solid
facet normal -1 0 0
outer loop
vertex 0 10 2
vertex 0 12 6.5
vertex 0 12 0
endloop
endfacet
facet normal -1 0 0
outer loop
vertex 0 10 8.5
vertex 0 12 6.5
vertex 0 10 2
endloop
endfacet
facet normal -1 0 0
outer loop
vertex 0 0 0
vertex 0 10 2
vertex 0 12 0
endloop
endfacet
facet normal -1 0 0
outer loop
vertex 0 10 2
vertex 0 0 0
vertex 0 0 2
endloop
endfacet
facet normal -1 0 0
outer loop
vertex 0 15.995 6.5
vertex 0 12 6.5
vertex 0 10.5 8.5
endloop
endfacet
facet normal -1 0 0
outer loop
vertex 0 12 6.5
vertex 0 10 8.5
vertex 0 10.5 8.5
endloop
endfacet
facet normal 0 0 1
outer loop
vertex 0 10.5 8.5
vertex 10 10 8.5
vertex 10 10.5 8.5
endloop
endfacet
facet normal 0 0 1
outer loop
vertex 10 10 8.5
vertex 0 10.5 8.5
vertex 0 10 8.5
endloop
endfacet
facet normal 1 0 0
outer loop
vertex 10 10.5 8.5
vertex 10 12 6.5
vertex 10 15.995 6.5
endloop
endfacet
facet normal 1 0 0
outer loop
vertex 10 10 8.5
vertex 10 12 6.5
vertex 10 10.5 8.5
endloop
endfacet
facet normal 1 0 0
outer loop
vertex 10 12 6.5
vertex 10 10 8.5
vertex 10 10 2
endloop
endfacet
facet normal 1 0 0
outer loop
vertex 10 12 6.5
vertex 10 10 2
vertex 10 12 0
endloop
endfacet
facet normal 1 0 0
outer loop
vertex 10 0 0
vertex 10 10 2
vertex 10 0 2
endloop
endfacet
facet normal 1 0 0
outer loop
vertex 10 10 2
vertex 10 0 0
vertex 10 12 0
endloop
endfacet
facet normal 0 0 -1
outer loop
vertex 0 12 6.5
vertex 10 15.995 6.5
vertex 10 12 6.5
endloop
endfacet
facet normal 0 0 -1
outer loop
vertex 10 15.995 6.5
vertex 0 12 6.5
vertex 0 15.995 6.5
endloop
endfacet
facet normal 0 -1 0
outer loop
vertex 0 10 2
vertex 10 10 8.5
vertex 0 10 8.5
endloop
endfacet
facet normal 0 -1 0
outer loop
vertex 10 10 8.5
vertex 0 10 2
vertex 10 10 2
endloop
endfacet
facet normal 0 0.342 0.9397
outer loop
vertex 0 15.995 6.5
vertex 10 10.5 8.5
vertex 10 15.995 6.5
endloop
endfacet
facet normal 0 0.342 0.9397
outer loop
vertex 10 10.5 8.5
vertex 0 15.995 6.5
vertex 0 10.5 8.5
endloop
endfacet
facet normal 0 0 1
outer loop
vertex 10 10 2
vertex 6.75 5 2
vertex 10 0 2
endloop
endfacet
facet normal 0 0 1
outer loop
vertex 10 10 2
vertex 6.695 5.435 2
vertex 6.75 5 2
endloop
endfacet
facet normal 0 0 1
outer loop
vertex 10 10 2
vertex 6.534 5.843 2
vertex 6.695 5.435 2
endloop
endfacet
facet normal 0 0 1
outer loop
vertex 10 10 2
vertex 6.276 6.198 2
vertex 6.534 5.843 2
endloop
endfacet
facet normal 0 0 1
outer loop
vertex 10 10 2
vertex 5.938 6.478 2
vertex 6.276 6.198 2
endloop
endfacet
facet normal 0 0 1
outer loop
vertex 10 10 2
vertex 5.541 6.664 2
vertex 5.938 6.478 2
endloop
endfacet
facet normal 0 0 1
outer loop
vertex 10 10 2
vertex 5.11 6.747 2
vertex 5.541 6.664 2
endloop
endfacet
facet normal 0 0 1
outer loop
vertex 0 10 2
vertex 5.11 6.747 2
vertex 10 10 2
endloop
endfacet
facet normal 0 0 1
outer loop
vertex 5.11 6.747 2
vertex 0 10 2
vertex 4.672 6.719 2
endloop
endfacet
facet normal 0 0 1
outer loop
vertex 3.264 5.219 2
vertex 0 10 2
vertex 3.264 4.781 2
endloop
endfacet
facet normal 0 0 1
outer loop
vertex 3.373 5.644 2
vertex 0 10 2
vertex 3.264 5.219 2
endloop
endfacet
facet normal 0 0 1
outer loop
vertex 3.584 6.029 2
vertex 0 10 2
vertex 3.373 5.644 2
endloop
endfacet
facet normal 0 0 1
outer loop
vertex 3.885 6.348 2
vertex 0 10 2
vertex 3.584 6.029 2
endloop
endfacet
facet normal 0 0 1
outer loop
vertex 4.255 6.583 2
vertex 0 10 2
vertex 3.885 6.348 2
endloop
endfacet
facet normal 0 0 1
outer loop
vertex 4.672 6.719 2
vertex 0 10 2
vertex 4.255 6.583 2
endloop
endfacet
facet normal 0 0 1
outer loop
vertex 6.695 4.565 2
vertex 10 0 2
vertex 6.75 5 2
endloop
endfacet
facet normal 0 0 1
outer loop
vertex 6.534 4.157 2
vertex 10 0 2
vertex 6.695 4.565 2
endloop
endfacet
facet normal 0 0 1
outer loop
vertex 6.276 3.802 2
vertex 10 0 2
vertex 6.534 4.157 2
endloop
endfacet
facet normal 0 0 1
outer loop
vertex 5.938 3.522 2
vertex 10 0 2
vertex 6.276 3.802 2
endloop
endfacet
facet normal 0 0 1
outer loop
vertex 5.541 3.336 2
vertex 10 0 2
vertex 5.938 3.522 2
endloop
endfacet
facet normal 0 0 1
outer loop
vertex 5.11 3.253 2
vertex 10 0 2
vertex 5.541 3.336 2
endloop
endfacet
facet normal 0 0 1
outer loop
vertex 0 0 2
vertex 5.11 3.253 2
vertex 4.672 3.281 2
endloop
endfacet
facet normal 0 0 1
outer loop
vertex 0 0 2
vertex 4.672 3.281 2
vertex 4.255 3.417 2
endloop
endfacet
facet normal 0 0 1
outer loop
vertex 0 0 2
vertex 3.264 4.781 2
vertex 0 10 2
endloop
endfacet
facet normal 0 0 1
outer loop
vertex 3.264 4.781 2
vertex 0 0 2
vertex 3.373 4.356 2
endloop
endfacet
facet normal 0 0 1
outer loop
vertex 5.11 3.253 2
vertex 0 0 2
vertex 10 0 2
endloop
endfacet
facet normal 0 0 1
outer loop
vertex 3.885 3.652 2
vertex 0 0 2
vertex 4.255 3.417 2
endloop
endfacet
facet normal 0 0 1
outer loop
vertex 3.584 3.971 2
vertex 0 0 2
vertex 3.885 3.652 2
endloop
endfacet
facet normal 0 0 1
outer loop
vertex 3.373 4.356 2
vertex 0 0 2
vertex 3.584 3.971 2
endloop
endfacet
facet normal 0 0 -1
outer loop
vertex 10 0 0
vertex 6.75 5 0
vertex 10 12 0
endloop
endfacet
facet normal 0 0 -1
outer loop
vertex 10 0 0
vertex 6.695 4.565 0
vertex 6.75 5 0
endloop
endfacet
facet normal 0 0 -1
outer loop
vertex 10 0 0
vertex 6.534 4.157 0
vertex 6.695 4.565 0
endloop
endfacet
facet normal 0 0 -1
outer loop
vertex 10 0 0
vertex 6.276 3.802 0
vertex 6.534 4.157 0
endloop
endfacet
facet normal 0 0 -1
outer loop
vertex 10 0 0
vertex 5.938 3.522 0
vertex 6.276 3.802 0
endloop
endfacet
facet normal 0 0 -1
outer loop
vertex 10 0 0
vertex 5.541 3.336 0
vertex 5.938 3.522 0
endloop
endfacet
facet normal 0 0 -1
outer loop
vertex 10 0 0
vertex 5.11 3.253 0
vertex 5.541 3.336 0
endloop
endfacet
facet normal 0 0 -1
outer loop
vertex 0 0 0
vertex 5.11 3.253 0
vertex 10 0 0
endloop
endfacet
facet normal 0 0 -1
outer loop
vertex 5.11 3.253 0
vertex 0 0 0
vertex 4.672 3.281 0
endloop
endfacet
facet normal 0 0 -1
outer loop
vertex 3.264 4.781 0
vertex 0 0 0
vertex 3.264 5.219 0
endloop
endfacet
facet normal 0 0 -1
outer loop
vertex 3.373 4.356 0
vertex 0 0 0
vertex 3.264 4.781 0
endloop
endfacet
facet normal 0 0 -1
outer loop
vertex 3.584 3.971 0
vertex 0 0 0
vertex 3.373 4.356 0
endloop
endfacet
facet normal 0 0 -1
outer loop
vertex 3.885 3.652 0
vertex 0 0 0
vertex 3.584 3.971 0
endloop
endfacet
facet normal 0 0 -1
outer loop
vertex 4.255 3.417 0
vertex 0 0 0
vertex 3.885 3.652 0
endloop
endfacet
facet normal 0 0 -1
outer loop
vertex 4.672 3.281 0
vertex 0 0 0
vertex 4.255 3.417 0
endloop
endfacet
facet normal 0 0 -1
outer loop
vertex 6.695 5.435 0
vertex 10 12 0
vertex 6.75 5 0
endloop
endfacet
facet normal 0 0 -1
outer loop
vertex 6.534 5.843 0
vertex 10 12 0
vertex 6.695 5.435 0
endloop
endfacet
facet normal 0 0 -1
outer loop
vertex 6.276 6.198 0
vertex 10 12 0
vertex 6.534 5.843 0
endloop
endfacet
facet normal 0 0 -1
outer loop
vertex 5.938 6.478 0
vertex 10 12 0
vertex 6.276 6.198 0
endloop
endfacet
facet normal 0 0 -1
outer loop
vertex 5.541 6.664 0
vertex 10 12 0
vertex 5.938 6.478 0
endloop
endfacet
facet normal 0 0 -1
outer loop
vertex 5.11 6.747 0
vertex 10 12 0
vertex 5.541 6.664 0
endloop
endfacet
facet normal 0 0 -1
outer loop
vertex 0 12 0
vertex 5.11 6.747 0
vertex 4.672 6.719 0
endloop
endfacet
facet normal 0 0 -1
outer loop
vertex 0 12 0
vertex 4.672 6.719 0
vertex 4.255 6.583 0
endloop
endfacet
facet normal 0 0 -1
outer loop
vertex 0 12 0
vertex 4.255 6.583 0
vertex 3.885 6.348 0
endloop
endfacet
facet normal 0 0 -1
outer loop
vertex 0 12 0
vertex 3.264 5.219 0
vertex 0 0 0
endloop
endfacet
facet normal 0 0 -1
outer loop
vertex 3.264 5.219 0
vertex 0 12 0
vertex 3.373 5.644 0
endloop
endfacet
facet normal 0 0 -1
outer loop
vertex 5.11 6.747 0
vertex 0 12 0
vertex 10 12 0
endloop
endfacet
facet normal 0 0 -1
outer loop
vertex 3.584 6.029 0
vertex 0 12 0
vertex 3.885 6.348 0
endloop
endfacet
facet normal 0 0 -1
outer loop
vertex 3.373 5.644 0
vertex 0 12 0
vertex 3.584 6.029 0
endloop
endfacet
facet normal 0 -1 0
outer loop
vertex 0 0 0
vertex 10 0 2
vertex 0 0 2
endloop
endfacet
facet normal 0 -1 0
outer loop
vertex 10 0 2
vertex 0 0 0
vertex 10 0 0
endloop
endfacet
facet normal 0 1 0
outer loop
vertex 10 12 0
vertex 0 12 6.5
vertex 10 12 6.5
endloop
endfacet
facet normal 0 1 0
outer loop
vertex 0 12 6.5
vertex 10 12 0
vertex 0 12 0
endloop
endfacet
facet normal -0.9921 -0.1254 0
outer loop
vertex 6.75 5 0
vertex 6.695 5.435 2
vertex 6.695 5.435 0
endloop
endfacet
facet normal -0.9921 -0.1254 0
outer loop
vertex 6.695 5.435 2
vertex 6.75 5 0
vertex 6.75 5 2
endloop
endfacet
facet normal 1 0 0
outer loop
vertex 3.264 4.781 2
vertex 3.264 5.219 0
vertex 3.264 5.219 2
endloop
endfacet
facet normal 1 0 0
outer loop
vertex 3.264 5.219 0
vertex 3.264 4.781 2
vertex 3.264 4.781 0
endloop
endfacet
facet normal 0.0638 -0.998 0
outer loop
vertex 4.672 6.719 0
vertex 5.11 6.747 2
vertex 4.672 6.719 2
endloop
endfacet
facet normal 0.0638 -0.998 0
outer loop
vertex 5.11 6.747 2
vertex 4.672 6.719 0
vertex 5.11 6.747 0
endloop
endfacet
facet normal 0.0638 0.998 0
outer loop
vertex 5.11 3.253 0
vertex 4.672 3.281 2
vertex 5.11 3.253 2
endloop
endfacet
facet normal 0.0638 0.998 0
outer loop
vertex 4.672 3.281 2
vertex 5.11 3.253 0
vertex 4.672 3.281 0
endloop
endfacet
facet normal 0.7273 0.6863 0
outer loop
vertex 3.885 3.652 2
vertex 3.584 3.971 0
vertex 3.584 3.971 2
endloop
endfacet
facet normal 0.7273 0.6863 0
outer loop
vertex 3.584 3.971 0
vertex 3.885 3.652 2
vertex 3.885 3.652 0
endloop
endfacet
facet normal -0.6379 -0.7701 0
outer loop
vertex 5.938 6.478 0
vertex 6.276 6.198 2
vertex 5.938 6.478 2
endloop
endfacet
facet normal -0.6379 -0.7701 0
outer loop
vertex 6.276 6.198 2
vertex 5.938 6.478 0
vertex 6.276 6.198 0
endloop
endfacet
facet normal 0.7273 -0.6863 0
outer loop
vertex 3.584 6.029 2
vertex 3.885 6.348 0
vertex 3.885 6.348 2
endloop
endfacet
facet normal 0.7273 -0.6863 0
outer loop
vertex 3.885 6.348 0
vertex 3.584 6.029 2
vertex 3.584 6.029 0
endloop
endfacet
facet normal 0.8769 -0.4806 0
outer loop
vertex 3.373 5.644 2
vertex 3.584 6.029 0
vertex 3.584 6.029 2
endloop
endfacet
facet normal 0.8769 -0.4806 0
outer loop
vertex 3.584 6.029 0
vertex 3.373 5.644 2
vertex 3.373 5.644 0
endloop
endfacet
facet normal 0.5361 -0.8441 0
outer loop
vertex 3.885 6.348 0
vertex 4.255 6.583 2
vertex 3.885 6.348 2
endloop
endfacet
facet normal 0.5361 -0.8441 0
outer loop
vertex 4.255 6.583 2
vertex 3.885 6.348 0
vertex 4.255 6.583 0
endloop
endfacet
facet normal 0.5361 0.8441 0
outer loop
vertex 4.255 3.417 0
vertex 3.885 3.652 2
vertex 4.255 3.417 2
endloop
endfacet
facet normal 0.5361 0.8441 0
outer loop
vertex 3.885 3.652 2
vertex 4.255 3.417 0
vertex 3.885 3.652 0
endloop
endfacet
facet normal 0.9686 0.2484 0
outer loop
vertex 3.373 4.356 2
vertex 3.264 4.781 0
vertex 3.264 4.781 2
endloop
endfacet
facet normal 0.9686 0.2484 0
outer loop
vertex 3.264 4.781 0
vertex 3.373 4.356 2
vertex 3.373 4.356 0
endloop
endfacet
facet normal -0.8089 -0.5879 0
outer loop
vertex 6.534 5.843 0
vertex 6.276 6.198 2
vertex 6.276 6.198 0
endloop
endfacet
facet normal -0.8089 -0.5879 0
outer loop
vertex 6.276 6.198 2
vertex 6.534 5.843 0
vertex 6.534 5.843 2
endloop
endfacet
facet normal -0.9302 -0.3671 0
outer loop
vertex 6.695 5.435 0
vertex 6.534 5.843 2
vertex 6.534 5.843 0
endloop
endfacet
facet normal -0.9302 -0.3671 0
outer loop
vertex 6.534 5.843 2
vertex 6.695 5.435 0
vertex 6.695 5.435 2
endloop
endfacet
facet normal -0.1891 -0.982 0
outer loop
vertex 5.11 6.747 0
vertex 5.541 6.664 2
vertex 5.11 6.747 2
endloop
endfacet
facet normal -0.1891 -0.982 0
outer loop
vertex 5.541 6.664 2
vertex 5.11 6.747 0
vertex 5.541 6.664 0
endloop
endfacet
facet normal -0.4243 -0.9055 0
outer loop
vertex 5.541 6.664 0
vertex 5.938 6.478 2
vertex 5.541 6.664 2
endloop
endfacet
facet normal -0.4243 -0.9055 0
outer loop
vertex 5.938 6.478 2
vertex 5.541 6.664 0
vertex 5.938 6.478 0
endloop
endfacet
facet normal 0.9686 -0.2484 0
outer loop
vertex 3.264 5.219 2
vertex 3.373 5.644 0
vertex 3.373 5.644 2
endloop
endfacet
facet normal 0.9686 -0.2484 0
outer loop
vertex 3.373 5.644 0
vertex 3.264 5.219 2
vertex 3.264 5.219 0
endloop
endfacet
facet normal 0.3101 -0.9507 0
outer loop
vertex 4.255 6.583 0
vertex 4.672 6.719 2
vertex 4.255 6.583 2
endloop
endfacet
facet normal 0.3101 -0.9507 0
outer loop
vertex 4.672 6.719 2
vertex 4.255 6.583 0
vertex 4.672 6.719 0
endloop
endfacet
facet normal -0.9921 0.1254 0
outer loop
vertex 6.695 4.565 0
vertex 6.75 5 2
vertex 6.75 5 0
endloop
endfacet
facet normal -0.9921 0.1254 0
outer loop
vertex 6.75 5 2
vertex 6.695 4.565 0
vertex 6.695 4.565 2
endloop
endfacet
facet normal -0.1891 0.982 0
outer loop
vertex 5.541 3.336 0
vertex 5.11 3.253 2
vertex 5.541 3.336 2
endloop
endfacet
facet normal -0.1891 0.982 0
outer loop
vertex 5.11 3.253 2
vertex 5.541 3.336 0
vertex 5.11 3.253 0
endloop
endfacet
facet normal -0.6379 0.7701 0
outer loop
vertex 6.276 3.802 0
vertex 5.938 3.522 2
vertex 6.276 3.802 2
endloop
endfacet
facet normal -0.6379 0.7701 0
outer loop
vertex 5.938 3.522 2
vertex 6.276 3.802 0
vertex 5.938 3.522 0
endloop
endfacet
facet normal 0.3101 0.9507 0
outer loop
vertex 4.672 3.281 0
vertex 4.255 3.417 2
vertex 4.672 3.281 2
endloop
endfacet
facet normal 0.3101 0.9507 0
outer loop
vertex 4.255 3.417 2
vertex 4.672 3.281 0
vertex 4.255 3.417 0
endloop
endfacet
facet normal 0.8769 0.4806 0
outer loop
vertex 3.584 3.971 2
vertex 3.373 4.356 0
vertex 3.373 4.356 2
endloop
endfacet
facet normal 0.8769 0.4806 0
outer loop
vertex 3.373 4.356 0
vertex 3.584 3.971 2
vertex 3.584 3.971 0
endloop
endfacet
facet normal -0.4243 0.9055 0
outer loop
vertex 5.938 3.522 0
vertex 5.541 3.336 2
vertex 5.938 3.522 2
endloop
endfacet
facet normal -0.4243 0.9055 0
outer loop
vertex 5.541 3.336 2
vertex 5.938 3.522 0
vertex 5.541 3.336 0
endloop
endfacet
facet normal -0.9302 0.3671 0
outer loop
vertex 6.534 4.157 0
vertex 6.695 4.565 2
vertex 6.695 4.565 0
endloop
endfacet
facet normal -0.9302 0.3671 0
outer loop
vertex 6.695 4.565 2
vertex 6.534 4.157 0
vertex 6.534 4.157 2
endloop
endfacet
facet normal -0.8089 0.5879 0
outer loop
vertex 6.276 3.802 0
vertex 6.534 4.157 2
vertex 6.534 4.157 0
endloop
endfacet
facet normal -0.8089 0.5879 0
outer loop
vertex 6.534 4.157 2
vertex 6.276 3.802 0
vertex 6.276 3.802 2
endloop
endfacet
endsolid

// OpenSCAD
alt = 6.5;
larg=10;
comp=10;




difference() {
   union(){
      cube([larg,comp,2]);
      translate([0,comp,0]) cube([larg,2,alt]);
      difference() {
           translate([0,comp,alt]) cube([larg,6,2]);
           translate([-1,comp+0.5,alt+2]) rotate([-20,0,0]) cube([larg+2,6,2]);

      }
   }
translate([larg/2,comp/2,-1]) cylinder(d=3.5,h=10,$fn=25);
}
